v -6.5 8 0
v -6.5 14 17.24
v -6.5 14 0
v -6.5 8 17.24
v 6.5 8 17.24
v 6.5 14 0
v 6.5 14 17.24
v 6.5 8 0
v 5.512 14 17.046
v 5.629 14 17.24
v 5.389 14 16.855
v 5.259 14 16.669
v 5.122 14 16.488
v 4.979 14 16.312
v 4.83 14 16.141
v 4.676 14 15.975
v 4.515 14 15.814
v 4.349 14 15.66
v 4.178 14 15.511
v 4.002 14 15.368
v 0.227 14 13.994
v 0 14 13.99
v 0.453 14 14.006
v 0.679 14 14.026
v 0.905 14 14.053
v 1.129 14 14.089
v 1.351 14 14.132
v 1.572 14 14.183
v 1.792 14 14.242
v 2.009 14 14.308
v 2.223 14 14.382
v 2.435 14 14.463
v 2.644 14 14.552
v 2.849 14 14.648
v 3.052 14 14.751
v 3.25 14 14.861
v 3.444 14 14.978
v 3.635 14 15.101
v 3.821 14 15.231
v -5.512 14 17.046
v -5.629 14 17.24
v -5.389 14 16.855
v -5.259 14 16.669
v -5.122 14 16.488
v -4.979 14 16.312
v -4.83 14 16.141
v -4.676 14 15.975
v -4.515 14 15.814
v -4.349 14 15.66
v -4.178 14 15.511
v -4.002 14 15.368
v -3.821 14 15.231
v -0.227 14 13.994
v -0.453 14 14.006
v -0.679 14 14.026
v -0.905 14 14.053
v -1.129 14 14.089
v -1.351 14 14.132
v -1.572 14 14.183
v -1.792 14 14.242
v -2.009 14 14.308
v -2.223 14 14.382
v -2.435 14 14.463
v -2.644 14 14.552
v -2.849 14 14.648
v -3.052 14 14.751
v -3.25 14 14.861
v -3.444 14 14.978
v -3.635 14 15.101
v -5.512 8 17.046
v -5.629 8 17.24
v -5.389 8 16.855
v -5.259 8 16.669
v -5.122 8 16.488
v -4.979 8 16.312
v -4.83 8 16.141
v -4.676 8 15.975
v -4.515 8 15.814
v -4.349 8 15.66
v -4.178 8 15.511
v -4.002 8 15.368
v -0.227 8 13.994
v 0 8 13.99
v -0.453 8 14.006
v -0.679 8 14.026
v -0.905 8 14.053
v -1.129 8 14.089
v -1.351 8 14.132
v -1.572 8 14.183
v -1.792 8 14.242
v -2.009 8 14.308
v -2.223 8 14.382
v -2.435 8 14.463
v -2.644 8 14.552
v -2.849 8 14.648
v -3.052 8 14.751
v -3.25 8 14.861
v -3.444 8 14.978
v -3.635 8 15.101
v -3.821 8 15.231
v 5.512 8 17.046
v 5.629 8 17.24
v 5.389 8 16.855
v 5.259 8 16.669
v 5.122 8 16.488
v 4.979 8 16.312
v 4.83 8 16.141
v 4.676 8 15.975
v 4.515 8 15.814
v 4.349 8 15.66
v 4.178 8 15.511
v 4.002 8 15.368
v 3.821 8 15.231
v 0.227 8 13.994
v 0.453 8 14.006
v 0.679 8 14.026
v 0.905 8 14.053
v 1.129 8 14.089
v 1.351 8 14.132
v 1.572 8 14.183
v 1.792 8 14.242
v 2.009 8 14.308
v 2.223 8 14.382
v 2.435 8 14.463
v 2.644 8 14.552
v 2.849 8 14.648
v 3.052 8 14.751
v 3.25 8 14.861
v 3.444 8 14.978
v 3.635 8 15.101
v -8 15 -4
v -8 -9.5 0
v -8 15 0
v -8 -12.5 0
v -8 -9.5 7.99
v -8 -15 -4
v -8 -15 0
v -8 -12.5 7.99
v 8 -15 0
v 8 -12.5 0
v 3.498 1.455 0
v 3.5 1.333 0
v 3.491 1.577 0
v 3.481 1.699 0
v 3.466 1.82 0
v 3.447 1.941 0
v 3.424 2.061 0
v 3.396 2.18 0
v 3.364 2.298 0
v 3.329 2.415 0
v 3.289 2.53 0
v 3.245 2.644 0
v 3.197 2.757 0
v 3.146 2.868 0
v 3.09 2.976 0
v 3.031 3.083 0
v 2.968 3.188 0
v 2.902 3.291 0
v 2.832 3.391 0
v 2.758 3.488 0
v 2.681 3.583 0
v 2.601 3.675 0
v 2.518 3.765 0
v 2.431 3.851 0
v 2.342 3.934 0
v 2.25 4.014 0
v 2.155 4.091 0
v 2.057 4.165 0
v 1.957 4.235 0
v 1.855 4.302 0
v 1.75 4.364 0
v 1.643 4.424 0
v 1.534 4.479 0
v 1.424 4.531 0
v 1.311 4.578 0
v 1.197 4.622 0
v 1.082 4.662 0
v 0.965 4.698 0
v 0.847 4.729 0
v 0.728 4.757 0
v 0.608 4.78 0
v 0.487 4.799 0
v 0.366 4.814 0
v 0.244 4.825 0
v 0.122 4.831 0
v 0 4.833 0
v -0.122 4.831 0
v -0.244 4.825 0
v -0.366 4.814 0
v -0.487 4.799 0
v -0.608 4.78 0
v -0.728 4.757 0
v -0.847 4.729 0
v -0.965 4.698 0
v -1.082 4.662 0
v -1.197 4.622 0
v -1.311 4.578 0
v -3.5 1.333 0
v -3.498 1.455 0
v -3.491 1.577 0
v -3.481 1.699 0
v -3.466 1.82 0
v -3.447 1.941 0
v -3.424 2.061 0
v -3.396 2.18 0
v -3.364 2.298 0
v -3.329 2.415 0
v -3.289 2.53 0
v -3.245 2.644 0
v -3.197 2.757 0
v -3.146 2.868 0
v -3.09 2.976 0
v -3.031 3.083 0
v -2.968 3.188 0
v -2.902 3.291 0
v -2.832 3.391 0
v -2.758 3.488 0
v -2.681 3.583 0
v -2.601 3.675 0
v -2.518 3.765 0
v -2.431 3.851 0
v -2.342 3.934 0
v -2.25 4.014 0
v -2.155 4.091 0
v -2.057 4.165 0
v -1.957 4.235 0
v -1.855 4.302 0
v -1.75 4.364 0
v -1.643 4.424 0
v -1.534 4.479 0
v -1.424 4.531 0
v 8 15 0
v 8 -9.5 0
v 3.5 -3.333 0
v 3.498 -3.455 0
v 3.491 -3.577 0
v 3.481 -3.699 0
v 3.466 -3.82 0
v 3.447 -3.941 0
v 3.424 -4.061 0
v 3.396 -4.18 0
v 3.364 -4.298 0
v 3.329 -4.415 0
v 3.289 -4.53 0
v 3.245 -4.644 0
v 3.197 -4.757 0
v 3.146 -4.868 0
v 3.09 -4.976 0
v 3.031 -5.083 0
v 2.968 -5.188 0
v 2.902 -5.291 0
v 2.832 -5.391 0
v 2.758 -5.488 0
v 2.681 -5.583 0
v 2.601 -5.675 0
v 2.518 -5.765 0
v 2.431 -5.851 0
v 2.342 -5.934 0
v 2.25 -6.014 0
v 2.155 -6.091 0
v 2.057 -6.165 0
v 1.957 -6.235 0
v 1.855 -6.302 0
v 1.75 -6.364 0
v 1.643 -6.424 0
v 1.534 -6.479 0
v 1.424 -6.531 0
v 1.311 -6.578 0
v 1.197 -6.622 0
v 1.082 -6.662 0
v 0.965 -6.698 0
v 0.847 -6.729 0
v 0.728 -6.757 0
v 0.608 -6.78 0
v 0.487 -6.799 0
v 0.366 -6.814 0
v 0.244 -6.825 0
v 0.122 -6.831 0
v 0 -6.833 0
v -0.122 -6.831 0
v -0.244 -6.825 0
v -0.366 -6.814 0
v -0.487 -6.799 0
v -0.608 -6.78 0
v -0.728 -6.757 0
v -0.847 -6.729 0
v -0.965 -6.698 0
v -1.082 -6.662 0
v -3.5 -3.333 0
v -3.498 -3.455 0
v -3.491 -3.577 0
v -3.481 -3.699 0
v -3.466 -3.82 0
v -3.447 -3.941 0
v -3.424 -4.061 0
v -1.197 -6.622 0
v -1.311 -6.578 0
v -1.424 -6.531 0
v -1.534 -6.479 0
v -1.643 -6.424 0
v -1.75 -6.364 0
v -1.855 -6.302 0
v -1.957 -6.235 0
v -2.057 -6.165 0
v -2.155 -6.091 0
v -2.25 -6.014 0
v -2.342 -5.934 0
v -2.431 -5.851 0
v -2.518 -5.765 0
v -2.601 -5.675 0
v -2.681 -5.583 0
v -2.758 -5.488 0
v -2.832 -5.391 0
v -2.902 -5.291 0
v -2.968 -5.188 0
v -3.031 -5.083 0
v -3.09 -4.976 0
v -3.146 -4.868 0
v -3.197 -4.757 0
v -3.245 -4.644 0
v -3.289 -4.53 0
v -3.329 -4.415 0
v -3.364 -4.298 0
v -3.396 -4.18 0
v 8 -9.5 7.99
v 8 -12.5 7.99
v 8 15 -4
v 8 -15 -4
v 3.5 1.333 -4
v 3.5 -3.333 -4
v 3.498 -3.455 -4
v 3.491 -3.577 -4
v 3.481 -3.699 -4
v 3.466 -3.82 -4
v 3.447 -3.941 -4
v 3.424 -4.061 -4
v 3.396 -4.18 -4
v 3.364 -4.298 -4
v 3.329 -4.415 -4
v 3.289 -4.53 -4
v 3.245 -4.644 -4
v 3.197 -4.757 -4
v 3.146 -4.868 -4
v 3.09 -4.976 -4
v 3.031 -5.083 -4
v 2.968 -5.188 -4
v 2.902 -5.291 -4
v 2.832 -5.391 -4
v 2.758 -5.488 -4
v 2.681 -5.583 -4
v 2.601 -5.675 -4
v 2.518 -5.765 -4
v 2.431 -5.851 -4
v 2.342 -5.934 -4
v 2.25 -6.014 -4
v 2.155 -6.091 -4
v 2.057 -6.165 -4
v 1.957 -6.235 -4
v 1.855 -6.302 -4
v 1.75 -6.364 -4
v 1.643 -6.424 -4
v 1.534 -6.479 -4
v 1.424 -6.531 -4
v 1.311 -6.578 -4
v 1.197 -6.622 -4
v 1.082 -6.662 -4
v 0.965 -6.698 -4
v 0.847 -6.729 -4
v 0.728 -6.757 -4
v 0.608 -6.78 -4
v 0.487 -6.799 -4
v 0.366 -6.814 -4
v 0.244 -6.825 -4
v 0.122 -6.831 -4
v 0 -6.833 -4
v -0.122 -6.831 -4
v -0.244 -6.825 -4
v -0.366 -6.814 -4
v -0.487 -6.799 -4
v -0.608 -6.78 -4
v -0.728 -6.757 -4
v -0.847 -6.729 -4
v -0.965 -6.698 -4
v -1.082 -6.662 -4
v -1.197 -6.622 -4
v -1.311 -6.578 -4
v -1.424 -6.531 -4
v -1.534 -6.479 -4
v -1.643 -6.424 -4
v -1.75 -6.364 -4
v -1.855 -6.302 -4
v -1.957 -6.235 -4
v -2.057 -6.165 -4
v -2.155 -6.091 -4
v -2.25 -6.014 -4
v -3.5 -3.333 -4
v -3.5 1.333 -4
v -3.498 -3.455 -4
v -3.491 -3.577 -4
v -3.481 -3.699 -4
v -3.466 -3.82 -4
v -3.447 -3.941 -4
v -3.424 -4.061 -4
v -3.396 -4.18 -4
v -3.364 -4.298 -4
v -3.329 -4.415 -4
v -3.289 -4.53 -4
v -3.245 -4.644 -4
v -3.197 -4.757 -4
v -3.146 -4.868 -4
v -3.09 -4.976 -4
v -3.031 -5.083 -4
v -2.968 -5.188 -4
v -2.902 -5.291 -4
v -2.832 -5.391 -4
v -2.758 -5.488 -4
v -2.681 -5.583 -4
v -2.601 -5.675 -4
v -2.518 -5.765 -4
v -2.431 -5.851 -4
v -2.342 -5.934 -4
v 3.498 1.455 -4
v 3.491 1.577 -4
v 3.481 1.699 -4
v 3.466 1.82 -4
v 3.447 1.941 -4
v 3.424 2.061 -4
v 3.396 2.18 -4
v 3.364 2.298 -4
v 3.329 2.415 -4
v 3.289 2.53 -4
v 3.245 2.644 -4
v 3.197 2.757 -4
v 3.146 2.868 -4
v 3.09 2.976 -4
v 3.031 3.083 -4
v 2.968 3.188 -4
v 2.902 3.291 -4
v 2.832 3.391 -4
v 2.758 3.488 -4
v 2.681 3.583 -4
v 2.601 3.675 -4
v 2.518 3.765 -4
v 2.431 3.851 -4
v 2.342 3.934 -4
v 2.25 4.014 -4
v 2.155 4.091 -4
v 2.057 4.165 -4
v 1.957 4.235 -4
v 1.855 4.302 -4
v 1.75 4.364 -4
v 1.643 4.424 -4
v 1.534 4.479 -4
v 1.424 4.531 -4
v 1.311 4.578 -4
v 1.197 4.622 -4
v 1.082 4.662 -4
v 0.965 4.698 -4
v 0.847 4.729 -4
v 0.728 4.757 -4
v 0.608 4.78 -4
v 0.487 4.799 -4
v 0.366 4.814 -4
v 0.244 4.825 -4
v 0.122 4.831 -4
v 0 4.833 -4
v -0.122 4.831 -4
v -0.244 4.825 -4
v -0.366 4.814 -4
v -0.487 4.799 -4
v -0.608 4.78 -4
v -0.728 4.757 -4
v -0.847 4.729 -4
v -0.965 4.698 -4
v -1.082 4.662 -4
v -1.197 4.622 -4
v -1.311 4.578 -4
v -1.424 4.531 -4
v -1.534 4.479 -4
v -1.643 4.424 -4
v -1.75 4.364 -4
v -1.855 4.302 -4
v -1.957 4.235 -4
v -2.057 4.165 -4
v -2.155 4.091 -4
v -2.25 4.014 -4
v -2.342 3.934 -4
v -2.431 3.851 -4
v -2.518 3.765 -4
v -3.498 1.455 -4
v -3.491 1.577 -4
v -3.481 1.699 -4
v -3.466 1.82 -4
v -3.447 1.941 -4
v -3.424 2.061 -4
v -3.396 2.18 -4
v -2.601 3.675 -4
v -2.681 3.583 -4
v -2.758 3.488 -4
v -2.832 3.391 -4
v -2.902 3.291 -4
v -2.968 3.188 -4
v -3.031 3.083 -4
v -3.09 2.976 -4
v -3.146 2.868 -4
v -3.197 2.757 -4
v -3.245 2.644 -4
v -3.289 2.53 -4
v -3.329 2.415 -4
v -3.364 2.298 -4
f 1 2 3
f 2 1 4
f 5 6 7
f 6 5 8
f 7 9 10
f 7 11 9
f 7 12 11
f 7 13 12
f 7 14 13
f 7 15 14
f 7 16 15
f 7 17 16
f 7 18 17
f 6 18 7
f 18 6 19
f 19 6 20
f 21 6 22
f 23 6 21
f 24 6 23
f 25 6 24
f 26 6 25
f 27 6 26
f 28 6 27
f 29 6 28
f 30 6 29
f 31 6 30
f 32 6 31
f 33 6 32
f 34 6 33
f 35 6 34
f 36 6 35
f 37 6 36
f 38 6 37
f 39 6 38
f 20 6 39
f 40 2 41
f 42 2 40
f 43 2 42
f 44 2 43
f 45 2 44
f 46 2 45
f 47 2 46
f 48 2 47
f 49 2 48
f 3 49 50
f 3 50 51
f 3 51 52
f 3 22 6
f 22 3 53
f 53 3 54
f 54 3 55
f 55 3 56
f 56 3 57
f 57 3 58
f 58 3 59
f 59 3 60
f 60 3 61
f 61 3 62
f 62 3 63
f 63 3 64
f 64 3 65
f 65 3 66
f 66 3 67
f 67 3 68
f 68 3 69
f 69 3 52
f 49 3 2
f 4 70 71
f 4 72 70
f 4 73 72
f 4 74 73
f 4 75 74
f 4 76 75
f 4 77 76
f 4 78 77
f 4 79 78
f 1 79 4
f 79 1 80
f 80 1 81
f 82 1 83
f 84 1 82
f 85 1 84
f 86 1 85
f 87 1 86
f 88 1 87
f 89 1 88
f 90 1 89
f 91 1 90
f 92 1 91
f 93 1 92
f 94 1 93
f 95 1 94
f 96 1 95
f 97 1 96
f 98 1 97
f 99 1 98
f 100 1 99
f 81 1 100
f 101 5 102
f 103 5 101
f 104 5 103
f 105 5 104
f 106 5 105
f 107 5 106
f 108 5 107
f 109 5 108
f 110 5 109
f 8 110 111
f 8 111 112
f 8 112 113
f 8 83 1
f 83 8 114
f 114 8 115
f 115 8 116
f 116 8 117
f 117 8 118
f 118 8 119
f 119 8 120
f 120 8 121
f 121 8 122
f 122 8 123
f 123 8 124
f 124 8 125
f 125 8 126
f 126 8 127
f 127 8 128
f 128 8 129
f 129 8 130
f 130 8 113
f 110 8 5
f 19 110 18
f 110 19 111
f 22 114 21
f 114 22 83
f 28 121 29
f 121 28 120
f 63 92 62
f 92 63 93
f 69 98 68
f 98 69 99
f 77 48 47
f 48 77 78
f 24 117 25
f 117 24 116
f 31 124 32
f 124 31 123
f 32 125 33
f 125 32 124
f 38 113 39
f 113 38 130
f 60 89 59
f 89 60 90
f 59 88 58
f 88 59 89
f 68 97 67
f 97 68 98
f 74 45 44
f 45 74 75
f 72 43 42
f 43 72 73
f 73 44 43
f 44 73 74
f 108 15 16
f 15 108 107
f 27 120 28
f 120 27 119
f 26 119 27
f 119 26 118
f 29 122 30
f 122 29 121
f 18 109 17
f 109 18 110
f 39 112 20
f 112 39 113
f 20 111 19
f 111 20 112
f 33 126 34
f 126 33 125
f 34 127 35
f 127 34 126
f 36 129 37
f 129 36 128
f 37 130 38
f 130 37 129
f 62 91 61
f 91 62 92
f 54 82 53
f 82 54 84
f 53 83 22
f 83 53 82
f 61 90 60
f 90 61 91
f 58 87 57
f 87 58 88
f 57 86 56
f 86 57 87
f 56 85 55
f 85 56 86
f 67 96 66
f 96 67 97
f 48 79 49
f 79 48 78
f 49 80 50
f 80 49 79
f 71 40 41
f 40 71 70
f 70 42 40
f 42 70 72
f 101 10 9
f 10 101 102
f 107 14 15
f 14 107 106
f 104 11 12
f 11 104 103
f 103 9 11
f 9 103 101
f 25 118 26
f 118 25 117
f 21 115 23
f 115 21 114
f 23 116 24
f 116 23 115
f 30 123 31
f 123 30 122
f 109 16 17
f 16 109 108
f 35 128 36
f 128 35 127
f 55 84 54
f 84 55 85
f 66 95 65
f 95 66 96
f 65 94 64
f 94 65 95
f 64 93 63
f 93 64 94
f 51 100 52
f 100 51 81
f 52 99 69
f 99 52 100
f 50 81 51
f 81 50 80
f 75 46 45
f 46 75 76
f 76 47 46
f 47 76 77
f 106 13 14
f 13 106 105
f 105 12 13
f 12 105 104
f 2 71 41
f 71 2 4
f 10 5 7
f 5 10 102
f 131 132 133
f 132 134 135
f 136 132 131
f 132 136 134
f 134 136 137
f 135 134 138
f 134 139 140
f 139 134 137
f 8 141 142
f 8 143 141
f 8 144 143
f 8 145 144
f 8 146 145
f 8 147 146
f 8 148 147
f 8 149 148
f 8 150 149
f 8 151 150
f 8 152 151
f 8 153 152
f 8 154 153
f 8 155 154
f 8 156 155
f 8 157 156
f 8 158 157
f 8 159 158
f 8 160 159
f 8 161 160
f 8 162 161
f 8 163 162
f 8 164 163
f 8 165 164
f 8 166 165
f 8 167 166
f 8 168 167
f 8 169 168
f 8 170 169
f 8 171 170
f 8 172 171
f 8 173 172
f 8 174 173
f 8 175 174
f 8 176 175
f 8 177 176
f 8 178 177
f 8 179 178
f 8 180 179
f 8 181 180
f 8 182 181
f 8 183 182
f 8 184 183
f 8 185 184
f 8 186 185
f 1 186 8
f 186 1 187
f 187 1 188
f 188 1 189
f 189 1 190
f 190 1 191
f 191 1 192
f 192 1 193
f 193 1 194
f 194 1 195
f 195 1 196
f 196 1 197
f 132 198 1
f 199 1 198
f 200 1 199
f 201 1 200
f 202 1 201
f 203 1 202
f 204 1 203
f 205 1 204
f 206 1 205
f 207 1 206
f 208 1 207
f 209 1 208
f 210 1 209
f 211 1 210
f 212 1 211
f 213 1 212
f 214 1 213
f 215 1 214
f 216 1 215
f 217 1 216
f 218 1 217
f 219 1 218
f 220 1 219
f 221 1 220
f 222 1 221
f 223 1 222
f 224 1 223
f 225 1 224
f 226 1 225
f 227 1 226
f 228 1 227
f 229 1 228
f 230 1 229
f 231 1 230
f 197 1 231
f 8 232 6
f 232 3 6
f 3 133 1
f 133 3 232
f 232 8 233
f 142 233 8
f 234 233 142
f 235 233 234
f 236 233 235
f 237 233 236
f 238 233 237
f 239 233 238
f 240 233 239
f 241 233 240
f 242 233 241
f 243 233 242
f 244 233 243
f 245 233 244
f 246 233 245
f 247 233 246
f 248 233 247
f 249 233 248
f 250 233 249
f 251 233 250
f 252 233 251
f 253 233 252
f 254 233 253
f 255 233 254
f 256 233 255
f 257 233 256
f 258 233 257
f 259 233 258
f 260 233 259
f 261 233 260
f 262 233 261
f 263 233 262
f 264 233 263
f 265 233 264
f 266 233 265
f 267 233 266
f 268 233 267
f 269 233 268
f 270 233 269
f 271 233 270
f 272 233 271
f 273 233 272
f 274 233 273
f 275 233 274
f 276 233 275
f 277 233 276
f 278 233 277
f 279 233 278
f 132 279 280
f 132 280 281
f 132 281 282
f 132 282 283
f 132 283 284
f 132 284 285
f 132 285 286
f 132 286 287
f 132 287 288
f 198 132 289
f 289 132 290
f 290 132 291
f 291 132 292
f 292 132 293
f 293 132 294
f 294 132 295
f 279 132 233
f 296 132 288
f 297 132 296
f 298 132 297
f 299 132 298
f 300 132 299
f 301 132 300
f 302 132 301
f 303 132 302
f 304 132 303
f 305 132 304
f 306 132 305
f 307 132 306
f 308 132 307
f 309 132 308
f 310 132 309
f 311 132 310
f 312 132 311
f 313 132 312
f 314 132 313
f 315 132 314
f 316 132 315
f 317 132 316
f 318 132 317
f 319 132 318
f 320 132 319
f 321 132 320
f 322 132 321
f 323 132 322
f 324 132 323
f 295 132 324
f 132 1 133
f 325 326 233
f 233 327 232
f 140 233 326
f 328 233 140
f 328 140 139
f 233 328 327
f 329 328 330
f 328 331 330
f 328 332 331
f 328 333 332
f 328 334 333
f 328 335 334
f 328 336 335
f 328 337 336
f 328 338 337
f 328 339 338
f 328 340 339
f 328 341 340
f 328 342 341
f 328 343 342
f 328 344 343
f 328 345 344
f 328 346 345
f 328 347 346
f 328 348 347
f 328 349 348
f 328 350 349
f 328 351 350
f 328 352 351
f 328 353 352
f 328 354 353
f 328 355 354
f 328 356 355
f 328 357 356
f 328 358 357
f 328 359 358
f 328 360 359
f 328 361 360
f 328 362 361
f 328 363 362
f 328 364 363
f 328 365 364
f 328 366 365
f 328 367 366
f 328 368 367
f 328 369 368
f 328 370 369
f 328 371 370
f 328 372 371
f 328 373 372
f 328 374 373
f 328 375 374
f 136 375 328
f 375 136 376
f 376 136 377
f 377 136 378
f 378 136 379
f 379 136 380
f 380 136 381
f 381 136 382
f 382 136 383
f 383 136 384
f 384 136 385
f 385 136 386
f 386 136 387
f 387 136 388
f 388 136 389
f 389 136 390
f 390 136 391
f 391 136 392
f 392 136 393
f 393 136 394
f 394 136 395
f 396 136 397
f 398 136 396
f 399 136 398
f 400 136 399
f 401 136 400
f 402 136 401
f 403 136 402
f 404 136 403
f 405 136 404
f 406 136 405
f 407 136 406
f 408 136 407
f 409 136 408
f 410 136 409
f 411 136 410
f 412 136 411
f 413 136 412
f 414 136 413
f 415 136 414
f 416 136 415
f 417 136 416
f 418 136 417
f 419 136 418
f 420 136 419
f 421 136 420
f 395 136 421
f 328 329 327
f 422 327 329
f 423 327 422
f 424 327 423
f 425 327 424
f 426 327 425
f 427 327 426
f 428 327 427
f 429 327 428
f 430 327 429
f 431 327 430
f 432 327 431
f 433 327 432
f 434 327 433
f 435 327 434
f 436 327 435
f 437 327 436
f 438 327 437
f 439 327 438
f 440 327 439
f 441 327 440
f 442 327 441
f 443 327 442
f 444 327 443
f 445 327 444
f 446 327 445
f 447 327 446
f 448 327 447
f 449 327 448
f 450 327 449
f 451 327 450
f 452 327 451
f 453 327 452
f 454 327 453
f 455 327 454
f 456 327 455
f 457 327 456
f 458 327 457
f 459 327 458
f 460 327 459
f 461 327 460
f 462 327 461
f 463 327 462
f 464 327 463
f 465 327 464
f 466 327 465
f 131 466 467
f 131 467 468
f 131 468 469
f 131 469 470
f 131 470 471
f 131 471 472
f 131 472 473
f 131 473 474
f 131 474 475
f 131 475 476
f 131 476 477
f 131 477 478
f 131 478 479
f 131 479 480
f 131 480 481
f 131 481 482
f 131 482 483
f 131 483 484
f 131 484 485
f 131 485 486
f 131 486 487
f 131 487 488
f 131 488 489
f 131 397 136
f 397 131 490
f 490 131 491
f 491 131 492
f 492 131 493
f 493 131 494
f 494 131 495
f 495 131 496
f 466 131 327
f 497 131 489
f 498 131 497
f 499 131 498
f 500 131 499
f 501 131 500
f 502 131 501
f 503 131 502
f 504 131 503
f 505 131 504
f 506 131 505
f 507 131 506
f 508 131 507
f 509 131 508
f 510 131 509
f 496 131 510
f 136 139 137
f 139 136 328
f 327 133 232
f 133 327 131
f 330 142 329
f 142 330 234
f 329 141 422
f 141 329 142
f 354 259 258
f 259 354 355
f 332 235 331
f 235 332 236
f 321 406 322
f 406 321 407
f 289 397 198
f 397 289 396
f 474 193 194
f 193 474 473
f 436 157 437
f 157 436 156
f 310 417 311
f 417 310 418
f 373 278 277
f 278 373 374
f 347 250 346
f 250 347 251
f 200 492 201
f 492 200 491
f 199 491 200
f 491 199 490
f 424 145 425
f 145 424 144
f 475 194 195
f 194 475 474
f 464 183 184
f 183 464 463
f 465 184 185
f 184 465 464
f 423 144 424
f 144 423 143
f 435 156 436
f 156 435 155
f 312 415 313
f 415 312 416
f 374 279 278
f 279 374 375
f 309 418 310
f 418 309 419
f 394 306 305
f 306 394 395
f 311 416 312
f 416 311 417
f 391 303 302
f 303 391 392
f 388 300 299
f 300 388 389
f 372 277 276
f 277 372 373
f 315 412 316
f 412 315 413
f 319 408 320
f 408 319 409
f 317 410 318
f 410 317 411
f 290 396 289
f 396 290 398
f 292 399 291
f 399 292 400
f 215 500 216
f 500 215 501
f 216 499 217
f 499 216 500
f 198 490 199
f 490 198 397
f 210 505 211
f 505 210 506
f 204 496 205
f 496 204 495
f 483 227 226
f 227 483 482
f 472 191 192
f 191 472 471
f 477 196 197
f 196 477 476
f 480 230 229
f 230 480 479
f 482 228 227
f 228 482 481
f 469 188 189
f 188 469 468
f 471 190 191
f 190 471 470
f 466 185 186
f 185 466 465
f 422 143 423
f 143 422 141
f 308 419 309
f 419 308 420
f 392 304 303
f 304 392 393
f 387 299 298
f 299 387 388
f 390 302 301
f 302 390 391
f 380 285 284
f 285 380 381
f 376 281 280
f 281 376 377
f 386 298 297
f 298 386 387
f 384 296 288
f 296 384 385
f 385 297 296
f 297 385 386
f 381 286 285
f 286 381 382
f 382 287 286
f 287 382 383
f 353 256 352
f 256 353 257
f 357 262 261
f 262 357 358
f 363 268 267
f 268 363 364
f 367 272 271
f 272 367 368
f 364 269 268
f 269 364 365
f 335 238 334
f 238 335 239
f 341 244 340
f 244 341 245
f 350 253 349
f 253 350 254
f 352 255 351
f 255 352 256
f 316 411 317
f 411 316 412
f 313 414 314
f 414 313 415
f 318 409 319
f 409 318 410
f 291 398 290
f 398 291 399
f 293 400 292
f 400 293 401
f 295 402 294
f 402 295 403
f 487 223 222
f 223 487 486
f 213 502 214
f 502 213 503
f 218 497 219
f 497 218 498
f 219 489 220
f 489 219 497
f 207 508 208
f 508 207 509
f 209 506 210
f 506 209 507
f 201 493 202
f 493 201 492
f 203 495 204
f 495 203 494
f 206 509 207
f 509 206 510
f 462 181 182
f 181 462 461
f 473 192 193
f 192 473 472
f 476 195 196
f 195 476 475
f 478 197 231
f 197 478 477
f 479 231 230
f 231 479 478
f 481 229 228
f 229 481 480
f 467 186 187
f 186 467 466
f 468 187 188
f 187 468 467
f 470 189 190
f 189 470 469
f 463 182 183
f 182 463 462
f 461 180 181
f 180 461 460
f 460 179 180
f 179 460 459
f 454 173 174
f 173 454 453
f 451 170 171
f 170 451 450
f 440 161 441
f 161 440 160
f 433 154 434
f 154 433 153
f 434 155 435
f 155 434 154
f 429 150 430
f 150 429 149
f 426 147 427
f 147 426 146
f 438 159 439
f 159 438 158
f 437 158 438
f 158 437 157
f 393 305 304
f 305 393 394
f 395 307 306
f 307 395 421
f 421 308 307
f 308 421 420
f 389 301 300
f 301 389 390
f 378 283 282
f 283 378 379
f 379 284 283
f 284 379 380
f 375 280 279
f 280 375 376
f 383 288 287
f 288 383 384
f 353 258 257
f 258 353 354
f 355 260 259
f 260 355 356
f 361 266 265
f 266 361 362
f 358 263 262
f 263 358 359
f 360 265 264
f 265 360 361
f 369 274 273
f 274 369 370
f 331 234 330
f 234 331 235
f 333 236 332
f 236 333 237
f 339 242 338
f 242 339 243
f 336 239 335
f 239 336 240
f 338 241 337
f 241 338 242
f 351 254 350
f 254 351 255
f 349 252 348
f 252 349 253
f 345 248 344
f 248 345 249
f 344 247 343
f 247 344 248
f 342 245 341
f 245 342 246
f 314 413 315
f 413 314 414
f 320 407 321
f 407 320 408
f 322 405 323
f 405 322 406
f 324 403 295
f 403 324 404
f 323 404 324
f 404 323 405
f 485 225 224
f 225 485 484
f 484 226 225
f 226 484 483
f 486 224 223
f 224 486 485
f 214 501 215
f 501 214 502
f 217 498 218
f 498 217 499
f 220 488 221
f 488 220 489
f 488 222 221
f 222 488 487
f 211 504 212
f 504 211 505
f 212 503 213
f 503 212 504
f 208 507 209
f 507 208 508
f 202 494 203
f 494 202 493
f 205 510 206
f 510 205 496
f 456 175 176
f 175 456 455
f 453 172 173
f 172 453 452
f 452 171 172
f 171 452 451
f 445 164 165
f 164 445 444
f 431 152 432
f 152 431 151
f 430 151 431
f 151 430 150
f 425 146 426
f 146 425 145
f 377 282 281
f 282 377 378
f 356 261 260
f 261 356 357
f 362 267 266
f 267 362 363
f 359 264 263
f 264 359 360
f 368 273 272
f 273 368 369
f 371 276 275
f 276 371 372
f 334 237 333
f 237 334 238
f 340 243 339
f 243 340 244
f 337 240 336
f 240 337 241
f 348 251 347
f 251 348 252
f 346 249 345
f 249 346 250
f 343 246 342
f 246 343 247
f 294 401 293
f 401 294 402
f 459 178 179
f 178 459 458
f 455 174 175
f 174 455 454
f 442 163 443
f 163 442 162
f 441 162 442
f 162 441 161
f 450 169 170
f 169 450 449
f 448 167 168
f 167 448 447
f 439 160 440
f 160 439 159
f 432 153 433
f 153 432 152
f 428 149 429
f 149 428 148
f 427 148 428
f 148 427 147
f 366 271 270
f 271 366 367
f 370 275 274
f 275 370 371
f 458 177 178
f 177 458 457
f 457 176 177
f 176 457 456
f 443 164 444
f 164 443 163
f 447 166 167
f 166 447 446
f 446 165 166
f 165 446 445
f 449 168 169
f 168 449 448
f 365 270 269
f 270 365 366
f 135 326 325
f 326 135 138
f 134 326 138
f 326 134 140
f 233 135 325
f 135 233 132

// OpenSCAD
$fn = 180;
fudge = 0.01;

from_center = 22/2;

base_w = 16;
base_d = from_center * 2 + 8;
base_h = 4;

nipple_d = 12+1;
nipple_r = nipple_d/2;
nipple_btm = 14;
nipple_base_w = nipple_d;
nipple_base_d = 6;
nipple_base_h = nipple_btm + nipple_r;

back_w = base_w;
back_d = 3; // arbitrary
back_h = 8;

// back
translate([0, -from_center, back_h/2 - fudge])
cube([base_w, 3, back_h], center=true);


// Debug - verify nipple base position
*color("purple", 0.8)
translate([0, from_center - 3, nipple_btm/2])
cube([nipple_base_w, nipple_base_d, nipple_btm], center=true);

// nipple
translate([0, from_center, (nipple_base_h/2) - fudge])
difference() {
    cube([nipple_base_w, nipple_base_d, nipple_base_h], center=true);
    
    // hole
    translate([0, 0, nipple_base_h/2])
        rotate([90, 0, 0])
        cylinder(nipple_base_d*2, d=nipple_d, center=true);
    
    // flatten hole
    color("green", 0.8)
        translate([0, 0, nipple_base_h-(nipple_r/2)])
        cube([nipple_base_w*2, nipple_base_d*2, nipple_base_h], center=true);
}

// base
color("grey", 1.0)
translate([0, 0, base_h/-2])
difference(){
    cube([base_w, base_d, base_h], center=true);
    
    // Hole to more easily get it off the build plate
    base_hole_d = 7;
    base_hole_hull_offset = base_hole_d/3;
    
    translate([0, -1, 0])
    hull() {
        translate([0, -base_hole_hull_offset, 0])
            cylinder(h=base_h*2, d=base_hole_d, center=true);
        translate([0, base_hole_hull_offset, 0])
            cylinder(h=base_h*2, d=base_hole_d, center=true);
    }
    
}
